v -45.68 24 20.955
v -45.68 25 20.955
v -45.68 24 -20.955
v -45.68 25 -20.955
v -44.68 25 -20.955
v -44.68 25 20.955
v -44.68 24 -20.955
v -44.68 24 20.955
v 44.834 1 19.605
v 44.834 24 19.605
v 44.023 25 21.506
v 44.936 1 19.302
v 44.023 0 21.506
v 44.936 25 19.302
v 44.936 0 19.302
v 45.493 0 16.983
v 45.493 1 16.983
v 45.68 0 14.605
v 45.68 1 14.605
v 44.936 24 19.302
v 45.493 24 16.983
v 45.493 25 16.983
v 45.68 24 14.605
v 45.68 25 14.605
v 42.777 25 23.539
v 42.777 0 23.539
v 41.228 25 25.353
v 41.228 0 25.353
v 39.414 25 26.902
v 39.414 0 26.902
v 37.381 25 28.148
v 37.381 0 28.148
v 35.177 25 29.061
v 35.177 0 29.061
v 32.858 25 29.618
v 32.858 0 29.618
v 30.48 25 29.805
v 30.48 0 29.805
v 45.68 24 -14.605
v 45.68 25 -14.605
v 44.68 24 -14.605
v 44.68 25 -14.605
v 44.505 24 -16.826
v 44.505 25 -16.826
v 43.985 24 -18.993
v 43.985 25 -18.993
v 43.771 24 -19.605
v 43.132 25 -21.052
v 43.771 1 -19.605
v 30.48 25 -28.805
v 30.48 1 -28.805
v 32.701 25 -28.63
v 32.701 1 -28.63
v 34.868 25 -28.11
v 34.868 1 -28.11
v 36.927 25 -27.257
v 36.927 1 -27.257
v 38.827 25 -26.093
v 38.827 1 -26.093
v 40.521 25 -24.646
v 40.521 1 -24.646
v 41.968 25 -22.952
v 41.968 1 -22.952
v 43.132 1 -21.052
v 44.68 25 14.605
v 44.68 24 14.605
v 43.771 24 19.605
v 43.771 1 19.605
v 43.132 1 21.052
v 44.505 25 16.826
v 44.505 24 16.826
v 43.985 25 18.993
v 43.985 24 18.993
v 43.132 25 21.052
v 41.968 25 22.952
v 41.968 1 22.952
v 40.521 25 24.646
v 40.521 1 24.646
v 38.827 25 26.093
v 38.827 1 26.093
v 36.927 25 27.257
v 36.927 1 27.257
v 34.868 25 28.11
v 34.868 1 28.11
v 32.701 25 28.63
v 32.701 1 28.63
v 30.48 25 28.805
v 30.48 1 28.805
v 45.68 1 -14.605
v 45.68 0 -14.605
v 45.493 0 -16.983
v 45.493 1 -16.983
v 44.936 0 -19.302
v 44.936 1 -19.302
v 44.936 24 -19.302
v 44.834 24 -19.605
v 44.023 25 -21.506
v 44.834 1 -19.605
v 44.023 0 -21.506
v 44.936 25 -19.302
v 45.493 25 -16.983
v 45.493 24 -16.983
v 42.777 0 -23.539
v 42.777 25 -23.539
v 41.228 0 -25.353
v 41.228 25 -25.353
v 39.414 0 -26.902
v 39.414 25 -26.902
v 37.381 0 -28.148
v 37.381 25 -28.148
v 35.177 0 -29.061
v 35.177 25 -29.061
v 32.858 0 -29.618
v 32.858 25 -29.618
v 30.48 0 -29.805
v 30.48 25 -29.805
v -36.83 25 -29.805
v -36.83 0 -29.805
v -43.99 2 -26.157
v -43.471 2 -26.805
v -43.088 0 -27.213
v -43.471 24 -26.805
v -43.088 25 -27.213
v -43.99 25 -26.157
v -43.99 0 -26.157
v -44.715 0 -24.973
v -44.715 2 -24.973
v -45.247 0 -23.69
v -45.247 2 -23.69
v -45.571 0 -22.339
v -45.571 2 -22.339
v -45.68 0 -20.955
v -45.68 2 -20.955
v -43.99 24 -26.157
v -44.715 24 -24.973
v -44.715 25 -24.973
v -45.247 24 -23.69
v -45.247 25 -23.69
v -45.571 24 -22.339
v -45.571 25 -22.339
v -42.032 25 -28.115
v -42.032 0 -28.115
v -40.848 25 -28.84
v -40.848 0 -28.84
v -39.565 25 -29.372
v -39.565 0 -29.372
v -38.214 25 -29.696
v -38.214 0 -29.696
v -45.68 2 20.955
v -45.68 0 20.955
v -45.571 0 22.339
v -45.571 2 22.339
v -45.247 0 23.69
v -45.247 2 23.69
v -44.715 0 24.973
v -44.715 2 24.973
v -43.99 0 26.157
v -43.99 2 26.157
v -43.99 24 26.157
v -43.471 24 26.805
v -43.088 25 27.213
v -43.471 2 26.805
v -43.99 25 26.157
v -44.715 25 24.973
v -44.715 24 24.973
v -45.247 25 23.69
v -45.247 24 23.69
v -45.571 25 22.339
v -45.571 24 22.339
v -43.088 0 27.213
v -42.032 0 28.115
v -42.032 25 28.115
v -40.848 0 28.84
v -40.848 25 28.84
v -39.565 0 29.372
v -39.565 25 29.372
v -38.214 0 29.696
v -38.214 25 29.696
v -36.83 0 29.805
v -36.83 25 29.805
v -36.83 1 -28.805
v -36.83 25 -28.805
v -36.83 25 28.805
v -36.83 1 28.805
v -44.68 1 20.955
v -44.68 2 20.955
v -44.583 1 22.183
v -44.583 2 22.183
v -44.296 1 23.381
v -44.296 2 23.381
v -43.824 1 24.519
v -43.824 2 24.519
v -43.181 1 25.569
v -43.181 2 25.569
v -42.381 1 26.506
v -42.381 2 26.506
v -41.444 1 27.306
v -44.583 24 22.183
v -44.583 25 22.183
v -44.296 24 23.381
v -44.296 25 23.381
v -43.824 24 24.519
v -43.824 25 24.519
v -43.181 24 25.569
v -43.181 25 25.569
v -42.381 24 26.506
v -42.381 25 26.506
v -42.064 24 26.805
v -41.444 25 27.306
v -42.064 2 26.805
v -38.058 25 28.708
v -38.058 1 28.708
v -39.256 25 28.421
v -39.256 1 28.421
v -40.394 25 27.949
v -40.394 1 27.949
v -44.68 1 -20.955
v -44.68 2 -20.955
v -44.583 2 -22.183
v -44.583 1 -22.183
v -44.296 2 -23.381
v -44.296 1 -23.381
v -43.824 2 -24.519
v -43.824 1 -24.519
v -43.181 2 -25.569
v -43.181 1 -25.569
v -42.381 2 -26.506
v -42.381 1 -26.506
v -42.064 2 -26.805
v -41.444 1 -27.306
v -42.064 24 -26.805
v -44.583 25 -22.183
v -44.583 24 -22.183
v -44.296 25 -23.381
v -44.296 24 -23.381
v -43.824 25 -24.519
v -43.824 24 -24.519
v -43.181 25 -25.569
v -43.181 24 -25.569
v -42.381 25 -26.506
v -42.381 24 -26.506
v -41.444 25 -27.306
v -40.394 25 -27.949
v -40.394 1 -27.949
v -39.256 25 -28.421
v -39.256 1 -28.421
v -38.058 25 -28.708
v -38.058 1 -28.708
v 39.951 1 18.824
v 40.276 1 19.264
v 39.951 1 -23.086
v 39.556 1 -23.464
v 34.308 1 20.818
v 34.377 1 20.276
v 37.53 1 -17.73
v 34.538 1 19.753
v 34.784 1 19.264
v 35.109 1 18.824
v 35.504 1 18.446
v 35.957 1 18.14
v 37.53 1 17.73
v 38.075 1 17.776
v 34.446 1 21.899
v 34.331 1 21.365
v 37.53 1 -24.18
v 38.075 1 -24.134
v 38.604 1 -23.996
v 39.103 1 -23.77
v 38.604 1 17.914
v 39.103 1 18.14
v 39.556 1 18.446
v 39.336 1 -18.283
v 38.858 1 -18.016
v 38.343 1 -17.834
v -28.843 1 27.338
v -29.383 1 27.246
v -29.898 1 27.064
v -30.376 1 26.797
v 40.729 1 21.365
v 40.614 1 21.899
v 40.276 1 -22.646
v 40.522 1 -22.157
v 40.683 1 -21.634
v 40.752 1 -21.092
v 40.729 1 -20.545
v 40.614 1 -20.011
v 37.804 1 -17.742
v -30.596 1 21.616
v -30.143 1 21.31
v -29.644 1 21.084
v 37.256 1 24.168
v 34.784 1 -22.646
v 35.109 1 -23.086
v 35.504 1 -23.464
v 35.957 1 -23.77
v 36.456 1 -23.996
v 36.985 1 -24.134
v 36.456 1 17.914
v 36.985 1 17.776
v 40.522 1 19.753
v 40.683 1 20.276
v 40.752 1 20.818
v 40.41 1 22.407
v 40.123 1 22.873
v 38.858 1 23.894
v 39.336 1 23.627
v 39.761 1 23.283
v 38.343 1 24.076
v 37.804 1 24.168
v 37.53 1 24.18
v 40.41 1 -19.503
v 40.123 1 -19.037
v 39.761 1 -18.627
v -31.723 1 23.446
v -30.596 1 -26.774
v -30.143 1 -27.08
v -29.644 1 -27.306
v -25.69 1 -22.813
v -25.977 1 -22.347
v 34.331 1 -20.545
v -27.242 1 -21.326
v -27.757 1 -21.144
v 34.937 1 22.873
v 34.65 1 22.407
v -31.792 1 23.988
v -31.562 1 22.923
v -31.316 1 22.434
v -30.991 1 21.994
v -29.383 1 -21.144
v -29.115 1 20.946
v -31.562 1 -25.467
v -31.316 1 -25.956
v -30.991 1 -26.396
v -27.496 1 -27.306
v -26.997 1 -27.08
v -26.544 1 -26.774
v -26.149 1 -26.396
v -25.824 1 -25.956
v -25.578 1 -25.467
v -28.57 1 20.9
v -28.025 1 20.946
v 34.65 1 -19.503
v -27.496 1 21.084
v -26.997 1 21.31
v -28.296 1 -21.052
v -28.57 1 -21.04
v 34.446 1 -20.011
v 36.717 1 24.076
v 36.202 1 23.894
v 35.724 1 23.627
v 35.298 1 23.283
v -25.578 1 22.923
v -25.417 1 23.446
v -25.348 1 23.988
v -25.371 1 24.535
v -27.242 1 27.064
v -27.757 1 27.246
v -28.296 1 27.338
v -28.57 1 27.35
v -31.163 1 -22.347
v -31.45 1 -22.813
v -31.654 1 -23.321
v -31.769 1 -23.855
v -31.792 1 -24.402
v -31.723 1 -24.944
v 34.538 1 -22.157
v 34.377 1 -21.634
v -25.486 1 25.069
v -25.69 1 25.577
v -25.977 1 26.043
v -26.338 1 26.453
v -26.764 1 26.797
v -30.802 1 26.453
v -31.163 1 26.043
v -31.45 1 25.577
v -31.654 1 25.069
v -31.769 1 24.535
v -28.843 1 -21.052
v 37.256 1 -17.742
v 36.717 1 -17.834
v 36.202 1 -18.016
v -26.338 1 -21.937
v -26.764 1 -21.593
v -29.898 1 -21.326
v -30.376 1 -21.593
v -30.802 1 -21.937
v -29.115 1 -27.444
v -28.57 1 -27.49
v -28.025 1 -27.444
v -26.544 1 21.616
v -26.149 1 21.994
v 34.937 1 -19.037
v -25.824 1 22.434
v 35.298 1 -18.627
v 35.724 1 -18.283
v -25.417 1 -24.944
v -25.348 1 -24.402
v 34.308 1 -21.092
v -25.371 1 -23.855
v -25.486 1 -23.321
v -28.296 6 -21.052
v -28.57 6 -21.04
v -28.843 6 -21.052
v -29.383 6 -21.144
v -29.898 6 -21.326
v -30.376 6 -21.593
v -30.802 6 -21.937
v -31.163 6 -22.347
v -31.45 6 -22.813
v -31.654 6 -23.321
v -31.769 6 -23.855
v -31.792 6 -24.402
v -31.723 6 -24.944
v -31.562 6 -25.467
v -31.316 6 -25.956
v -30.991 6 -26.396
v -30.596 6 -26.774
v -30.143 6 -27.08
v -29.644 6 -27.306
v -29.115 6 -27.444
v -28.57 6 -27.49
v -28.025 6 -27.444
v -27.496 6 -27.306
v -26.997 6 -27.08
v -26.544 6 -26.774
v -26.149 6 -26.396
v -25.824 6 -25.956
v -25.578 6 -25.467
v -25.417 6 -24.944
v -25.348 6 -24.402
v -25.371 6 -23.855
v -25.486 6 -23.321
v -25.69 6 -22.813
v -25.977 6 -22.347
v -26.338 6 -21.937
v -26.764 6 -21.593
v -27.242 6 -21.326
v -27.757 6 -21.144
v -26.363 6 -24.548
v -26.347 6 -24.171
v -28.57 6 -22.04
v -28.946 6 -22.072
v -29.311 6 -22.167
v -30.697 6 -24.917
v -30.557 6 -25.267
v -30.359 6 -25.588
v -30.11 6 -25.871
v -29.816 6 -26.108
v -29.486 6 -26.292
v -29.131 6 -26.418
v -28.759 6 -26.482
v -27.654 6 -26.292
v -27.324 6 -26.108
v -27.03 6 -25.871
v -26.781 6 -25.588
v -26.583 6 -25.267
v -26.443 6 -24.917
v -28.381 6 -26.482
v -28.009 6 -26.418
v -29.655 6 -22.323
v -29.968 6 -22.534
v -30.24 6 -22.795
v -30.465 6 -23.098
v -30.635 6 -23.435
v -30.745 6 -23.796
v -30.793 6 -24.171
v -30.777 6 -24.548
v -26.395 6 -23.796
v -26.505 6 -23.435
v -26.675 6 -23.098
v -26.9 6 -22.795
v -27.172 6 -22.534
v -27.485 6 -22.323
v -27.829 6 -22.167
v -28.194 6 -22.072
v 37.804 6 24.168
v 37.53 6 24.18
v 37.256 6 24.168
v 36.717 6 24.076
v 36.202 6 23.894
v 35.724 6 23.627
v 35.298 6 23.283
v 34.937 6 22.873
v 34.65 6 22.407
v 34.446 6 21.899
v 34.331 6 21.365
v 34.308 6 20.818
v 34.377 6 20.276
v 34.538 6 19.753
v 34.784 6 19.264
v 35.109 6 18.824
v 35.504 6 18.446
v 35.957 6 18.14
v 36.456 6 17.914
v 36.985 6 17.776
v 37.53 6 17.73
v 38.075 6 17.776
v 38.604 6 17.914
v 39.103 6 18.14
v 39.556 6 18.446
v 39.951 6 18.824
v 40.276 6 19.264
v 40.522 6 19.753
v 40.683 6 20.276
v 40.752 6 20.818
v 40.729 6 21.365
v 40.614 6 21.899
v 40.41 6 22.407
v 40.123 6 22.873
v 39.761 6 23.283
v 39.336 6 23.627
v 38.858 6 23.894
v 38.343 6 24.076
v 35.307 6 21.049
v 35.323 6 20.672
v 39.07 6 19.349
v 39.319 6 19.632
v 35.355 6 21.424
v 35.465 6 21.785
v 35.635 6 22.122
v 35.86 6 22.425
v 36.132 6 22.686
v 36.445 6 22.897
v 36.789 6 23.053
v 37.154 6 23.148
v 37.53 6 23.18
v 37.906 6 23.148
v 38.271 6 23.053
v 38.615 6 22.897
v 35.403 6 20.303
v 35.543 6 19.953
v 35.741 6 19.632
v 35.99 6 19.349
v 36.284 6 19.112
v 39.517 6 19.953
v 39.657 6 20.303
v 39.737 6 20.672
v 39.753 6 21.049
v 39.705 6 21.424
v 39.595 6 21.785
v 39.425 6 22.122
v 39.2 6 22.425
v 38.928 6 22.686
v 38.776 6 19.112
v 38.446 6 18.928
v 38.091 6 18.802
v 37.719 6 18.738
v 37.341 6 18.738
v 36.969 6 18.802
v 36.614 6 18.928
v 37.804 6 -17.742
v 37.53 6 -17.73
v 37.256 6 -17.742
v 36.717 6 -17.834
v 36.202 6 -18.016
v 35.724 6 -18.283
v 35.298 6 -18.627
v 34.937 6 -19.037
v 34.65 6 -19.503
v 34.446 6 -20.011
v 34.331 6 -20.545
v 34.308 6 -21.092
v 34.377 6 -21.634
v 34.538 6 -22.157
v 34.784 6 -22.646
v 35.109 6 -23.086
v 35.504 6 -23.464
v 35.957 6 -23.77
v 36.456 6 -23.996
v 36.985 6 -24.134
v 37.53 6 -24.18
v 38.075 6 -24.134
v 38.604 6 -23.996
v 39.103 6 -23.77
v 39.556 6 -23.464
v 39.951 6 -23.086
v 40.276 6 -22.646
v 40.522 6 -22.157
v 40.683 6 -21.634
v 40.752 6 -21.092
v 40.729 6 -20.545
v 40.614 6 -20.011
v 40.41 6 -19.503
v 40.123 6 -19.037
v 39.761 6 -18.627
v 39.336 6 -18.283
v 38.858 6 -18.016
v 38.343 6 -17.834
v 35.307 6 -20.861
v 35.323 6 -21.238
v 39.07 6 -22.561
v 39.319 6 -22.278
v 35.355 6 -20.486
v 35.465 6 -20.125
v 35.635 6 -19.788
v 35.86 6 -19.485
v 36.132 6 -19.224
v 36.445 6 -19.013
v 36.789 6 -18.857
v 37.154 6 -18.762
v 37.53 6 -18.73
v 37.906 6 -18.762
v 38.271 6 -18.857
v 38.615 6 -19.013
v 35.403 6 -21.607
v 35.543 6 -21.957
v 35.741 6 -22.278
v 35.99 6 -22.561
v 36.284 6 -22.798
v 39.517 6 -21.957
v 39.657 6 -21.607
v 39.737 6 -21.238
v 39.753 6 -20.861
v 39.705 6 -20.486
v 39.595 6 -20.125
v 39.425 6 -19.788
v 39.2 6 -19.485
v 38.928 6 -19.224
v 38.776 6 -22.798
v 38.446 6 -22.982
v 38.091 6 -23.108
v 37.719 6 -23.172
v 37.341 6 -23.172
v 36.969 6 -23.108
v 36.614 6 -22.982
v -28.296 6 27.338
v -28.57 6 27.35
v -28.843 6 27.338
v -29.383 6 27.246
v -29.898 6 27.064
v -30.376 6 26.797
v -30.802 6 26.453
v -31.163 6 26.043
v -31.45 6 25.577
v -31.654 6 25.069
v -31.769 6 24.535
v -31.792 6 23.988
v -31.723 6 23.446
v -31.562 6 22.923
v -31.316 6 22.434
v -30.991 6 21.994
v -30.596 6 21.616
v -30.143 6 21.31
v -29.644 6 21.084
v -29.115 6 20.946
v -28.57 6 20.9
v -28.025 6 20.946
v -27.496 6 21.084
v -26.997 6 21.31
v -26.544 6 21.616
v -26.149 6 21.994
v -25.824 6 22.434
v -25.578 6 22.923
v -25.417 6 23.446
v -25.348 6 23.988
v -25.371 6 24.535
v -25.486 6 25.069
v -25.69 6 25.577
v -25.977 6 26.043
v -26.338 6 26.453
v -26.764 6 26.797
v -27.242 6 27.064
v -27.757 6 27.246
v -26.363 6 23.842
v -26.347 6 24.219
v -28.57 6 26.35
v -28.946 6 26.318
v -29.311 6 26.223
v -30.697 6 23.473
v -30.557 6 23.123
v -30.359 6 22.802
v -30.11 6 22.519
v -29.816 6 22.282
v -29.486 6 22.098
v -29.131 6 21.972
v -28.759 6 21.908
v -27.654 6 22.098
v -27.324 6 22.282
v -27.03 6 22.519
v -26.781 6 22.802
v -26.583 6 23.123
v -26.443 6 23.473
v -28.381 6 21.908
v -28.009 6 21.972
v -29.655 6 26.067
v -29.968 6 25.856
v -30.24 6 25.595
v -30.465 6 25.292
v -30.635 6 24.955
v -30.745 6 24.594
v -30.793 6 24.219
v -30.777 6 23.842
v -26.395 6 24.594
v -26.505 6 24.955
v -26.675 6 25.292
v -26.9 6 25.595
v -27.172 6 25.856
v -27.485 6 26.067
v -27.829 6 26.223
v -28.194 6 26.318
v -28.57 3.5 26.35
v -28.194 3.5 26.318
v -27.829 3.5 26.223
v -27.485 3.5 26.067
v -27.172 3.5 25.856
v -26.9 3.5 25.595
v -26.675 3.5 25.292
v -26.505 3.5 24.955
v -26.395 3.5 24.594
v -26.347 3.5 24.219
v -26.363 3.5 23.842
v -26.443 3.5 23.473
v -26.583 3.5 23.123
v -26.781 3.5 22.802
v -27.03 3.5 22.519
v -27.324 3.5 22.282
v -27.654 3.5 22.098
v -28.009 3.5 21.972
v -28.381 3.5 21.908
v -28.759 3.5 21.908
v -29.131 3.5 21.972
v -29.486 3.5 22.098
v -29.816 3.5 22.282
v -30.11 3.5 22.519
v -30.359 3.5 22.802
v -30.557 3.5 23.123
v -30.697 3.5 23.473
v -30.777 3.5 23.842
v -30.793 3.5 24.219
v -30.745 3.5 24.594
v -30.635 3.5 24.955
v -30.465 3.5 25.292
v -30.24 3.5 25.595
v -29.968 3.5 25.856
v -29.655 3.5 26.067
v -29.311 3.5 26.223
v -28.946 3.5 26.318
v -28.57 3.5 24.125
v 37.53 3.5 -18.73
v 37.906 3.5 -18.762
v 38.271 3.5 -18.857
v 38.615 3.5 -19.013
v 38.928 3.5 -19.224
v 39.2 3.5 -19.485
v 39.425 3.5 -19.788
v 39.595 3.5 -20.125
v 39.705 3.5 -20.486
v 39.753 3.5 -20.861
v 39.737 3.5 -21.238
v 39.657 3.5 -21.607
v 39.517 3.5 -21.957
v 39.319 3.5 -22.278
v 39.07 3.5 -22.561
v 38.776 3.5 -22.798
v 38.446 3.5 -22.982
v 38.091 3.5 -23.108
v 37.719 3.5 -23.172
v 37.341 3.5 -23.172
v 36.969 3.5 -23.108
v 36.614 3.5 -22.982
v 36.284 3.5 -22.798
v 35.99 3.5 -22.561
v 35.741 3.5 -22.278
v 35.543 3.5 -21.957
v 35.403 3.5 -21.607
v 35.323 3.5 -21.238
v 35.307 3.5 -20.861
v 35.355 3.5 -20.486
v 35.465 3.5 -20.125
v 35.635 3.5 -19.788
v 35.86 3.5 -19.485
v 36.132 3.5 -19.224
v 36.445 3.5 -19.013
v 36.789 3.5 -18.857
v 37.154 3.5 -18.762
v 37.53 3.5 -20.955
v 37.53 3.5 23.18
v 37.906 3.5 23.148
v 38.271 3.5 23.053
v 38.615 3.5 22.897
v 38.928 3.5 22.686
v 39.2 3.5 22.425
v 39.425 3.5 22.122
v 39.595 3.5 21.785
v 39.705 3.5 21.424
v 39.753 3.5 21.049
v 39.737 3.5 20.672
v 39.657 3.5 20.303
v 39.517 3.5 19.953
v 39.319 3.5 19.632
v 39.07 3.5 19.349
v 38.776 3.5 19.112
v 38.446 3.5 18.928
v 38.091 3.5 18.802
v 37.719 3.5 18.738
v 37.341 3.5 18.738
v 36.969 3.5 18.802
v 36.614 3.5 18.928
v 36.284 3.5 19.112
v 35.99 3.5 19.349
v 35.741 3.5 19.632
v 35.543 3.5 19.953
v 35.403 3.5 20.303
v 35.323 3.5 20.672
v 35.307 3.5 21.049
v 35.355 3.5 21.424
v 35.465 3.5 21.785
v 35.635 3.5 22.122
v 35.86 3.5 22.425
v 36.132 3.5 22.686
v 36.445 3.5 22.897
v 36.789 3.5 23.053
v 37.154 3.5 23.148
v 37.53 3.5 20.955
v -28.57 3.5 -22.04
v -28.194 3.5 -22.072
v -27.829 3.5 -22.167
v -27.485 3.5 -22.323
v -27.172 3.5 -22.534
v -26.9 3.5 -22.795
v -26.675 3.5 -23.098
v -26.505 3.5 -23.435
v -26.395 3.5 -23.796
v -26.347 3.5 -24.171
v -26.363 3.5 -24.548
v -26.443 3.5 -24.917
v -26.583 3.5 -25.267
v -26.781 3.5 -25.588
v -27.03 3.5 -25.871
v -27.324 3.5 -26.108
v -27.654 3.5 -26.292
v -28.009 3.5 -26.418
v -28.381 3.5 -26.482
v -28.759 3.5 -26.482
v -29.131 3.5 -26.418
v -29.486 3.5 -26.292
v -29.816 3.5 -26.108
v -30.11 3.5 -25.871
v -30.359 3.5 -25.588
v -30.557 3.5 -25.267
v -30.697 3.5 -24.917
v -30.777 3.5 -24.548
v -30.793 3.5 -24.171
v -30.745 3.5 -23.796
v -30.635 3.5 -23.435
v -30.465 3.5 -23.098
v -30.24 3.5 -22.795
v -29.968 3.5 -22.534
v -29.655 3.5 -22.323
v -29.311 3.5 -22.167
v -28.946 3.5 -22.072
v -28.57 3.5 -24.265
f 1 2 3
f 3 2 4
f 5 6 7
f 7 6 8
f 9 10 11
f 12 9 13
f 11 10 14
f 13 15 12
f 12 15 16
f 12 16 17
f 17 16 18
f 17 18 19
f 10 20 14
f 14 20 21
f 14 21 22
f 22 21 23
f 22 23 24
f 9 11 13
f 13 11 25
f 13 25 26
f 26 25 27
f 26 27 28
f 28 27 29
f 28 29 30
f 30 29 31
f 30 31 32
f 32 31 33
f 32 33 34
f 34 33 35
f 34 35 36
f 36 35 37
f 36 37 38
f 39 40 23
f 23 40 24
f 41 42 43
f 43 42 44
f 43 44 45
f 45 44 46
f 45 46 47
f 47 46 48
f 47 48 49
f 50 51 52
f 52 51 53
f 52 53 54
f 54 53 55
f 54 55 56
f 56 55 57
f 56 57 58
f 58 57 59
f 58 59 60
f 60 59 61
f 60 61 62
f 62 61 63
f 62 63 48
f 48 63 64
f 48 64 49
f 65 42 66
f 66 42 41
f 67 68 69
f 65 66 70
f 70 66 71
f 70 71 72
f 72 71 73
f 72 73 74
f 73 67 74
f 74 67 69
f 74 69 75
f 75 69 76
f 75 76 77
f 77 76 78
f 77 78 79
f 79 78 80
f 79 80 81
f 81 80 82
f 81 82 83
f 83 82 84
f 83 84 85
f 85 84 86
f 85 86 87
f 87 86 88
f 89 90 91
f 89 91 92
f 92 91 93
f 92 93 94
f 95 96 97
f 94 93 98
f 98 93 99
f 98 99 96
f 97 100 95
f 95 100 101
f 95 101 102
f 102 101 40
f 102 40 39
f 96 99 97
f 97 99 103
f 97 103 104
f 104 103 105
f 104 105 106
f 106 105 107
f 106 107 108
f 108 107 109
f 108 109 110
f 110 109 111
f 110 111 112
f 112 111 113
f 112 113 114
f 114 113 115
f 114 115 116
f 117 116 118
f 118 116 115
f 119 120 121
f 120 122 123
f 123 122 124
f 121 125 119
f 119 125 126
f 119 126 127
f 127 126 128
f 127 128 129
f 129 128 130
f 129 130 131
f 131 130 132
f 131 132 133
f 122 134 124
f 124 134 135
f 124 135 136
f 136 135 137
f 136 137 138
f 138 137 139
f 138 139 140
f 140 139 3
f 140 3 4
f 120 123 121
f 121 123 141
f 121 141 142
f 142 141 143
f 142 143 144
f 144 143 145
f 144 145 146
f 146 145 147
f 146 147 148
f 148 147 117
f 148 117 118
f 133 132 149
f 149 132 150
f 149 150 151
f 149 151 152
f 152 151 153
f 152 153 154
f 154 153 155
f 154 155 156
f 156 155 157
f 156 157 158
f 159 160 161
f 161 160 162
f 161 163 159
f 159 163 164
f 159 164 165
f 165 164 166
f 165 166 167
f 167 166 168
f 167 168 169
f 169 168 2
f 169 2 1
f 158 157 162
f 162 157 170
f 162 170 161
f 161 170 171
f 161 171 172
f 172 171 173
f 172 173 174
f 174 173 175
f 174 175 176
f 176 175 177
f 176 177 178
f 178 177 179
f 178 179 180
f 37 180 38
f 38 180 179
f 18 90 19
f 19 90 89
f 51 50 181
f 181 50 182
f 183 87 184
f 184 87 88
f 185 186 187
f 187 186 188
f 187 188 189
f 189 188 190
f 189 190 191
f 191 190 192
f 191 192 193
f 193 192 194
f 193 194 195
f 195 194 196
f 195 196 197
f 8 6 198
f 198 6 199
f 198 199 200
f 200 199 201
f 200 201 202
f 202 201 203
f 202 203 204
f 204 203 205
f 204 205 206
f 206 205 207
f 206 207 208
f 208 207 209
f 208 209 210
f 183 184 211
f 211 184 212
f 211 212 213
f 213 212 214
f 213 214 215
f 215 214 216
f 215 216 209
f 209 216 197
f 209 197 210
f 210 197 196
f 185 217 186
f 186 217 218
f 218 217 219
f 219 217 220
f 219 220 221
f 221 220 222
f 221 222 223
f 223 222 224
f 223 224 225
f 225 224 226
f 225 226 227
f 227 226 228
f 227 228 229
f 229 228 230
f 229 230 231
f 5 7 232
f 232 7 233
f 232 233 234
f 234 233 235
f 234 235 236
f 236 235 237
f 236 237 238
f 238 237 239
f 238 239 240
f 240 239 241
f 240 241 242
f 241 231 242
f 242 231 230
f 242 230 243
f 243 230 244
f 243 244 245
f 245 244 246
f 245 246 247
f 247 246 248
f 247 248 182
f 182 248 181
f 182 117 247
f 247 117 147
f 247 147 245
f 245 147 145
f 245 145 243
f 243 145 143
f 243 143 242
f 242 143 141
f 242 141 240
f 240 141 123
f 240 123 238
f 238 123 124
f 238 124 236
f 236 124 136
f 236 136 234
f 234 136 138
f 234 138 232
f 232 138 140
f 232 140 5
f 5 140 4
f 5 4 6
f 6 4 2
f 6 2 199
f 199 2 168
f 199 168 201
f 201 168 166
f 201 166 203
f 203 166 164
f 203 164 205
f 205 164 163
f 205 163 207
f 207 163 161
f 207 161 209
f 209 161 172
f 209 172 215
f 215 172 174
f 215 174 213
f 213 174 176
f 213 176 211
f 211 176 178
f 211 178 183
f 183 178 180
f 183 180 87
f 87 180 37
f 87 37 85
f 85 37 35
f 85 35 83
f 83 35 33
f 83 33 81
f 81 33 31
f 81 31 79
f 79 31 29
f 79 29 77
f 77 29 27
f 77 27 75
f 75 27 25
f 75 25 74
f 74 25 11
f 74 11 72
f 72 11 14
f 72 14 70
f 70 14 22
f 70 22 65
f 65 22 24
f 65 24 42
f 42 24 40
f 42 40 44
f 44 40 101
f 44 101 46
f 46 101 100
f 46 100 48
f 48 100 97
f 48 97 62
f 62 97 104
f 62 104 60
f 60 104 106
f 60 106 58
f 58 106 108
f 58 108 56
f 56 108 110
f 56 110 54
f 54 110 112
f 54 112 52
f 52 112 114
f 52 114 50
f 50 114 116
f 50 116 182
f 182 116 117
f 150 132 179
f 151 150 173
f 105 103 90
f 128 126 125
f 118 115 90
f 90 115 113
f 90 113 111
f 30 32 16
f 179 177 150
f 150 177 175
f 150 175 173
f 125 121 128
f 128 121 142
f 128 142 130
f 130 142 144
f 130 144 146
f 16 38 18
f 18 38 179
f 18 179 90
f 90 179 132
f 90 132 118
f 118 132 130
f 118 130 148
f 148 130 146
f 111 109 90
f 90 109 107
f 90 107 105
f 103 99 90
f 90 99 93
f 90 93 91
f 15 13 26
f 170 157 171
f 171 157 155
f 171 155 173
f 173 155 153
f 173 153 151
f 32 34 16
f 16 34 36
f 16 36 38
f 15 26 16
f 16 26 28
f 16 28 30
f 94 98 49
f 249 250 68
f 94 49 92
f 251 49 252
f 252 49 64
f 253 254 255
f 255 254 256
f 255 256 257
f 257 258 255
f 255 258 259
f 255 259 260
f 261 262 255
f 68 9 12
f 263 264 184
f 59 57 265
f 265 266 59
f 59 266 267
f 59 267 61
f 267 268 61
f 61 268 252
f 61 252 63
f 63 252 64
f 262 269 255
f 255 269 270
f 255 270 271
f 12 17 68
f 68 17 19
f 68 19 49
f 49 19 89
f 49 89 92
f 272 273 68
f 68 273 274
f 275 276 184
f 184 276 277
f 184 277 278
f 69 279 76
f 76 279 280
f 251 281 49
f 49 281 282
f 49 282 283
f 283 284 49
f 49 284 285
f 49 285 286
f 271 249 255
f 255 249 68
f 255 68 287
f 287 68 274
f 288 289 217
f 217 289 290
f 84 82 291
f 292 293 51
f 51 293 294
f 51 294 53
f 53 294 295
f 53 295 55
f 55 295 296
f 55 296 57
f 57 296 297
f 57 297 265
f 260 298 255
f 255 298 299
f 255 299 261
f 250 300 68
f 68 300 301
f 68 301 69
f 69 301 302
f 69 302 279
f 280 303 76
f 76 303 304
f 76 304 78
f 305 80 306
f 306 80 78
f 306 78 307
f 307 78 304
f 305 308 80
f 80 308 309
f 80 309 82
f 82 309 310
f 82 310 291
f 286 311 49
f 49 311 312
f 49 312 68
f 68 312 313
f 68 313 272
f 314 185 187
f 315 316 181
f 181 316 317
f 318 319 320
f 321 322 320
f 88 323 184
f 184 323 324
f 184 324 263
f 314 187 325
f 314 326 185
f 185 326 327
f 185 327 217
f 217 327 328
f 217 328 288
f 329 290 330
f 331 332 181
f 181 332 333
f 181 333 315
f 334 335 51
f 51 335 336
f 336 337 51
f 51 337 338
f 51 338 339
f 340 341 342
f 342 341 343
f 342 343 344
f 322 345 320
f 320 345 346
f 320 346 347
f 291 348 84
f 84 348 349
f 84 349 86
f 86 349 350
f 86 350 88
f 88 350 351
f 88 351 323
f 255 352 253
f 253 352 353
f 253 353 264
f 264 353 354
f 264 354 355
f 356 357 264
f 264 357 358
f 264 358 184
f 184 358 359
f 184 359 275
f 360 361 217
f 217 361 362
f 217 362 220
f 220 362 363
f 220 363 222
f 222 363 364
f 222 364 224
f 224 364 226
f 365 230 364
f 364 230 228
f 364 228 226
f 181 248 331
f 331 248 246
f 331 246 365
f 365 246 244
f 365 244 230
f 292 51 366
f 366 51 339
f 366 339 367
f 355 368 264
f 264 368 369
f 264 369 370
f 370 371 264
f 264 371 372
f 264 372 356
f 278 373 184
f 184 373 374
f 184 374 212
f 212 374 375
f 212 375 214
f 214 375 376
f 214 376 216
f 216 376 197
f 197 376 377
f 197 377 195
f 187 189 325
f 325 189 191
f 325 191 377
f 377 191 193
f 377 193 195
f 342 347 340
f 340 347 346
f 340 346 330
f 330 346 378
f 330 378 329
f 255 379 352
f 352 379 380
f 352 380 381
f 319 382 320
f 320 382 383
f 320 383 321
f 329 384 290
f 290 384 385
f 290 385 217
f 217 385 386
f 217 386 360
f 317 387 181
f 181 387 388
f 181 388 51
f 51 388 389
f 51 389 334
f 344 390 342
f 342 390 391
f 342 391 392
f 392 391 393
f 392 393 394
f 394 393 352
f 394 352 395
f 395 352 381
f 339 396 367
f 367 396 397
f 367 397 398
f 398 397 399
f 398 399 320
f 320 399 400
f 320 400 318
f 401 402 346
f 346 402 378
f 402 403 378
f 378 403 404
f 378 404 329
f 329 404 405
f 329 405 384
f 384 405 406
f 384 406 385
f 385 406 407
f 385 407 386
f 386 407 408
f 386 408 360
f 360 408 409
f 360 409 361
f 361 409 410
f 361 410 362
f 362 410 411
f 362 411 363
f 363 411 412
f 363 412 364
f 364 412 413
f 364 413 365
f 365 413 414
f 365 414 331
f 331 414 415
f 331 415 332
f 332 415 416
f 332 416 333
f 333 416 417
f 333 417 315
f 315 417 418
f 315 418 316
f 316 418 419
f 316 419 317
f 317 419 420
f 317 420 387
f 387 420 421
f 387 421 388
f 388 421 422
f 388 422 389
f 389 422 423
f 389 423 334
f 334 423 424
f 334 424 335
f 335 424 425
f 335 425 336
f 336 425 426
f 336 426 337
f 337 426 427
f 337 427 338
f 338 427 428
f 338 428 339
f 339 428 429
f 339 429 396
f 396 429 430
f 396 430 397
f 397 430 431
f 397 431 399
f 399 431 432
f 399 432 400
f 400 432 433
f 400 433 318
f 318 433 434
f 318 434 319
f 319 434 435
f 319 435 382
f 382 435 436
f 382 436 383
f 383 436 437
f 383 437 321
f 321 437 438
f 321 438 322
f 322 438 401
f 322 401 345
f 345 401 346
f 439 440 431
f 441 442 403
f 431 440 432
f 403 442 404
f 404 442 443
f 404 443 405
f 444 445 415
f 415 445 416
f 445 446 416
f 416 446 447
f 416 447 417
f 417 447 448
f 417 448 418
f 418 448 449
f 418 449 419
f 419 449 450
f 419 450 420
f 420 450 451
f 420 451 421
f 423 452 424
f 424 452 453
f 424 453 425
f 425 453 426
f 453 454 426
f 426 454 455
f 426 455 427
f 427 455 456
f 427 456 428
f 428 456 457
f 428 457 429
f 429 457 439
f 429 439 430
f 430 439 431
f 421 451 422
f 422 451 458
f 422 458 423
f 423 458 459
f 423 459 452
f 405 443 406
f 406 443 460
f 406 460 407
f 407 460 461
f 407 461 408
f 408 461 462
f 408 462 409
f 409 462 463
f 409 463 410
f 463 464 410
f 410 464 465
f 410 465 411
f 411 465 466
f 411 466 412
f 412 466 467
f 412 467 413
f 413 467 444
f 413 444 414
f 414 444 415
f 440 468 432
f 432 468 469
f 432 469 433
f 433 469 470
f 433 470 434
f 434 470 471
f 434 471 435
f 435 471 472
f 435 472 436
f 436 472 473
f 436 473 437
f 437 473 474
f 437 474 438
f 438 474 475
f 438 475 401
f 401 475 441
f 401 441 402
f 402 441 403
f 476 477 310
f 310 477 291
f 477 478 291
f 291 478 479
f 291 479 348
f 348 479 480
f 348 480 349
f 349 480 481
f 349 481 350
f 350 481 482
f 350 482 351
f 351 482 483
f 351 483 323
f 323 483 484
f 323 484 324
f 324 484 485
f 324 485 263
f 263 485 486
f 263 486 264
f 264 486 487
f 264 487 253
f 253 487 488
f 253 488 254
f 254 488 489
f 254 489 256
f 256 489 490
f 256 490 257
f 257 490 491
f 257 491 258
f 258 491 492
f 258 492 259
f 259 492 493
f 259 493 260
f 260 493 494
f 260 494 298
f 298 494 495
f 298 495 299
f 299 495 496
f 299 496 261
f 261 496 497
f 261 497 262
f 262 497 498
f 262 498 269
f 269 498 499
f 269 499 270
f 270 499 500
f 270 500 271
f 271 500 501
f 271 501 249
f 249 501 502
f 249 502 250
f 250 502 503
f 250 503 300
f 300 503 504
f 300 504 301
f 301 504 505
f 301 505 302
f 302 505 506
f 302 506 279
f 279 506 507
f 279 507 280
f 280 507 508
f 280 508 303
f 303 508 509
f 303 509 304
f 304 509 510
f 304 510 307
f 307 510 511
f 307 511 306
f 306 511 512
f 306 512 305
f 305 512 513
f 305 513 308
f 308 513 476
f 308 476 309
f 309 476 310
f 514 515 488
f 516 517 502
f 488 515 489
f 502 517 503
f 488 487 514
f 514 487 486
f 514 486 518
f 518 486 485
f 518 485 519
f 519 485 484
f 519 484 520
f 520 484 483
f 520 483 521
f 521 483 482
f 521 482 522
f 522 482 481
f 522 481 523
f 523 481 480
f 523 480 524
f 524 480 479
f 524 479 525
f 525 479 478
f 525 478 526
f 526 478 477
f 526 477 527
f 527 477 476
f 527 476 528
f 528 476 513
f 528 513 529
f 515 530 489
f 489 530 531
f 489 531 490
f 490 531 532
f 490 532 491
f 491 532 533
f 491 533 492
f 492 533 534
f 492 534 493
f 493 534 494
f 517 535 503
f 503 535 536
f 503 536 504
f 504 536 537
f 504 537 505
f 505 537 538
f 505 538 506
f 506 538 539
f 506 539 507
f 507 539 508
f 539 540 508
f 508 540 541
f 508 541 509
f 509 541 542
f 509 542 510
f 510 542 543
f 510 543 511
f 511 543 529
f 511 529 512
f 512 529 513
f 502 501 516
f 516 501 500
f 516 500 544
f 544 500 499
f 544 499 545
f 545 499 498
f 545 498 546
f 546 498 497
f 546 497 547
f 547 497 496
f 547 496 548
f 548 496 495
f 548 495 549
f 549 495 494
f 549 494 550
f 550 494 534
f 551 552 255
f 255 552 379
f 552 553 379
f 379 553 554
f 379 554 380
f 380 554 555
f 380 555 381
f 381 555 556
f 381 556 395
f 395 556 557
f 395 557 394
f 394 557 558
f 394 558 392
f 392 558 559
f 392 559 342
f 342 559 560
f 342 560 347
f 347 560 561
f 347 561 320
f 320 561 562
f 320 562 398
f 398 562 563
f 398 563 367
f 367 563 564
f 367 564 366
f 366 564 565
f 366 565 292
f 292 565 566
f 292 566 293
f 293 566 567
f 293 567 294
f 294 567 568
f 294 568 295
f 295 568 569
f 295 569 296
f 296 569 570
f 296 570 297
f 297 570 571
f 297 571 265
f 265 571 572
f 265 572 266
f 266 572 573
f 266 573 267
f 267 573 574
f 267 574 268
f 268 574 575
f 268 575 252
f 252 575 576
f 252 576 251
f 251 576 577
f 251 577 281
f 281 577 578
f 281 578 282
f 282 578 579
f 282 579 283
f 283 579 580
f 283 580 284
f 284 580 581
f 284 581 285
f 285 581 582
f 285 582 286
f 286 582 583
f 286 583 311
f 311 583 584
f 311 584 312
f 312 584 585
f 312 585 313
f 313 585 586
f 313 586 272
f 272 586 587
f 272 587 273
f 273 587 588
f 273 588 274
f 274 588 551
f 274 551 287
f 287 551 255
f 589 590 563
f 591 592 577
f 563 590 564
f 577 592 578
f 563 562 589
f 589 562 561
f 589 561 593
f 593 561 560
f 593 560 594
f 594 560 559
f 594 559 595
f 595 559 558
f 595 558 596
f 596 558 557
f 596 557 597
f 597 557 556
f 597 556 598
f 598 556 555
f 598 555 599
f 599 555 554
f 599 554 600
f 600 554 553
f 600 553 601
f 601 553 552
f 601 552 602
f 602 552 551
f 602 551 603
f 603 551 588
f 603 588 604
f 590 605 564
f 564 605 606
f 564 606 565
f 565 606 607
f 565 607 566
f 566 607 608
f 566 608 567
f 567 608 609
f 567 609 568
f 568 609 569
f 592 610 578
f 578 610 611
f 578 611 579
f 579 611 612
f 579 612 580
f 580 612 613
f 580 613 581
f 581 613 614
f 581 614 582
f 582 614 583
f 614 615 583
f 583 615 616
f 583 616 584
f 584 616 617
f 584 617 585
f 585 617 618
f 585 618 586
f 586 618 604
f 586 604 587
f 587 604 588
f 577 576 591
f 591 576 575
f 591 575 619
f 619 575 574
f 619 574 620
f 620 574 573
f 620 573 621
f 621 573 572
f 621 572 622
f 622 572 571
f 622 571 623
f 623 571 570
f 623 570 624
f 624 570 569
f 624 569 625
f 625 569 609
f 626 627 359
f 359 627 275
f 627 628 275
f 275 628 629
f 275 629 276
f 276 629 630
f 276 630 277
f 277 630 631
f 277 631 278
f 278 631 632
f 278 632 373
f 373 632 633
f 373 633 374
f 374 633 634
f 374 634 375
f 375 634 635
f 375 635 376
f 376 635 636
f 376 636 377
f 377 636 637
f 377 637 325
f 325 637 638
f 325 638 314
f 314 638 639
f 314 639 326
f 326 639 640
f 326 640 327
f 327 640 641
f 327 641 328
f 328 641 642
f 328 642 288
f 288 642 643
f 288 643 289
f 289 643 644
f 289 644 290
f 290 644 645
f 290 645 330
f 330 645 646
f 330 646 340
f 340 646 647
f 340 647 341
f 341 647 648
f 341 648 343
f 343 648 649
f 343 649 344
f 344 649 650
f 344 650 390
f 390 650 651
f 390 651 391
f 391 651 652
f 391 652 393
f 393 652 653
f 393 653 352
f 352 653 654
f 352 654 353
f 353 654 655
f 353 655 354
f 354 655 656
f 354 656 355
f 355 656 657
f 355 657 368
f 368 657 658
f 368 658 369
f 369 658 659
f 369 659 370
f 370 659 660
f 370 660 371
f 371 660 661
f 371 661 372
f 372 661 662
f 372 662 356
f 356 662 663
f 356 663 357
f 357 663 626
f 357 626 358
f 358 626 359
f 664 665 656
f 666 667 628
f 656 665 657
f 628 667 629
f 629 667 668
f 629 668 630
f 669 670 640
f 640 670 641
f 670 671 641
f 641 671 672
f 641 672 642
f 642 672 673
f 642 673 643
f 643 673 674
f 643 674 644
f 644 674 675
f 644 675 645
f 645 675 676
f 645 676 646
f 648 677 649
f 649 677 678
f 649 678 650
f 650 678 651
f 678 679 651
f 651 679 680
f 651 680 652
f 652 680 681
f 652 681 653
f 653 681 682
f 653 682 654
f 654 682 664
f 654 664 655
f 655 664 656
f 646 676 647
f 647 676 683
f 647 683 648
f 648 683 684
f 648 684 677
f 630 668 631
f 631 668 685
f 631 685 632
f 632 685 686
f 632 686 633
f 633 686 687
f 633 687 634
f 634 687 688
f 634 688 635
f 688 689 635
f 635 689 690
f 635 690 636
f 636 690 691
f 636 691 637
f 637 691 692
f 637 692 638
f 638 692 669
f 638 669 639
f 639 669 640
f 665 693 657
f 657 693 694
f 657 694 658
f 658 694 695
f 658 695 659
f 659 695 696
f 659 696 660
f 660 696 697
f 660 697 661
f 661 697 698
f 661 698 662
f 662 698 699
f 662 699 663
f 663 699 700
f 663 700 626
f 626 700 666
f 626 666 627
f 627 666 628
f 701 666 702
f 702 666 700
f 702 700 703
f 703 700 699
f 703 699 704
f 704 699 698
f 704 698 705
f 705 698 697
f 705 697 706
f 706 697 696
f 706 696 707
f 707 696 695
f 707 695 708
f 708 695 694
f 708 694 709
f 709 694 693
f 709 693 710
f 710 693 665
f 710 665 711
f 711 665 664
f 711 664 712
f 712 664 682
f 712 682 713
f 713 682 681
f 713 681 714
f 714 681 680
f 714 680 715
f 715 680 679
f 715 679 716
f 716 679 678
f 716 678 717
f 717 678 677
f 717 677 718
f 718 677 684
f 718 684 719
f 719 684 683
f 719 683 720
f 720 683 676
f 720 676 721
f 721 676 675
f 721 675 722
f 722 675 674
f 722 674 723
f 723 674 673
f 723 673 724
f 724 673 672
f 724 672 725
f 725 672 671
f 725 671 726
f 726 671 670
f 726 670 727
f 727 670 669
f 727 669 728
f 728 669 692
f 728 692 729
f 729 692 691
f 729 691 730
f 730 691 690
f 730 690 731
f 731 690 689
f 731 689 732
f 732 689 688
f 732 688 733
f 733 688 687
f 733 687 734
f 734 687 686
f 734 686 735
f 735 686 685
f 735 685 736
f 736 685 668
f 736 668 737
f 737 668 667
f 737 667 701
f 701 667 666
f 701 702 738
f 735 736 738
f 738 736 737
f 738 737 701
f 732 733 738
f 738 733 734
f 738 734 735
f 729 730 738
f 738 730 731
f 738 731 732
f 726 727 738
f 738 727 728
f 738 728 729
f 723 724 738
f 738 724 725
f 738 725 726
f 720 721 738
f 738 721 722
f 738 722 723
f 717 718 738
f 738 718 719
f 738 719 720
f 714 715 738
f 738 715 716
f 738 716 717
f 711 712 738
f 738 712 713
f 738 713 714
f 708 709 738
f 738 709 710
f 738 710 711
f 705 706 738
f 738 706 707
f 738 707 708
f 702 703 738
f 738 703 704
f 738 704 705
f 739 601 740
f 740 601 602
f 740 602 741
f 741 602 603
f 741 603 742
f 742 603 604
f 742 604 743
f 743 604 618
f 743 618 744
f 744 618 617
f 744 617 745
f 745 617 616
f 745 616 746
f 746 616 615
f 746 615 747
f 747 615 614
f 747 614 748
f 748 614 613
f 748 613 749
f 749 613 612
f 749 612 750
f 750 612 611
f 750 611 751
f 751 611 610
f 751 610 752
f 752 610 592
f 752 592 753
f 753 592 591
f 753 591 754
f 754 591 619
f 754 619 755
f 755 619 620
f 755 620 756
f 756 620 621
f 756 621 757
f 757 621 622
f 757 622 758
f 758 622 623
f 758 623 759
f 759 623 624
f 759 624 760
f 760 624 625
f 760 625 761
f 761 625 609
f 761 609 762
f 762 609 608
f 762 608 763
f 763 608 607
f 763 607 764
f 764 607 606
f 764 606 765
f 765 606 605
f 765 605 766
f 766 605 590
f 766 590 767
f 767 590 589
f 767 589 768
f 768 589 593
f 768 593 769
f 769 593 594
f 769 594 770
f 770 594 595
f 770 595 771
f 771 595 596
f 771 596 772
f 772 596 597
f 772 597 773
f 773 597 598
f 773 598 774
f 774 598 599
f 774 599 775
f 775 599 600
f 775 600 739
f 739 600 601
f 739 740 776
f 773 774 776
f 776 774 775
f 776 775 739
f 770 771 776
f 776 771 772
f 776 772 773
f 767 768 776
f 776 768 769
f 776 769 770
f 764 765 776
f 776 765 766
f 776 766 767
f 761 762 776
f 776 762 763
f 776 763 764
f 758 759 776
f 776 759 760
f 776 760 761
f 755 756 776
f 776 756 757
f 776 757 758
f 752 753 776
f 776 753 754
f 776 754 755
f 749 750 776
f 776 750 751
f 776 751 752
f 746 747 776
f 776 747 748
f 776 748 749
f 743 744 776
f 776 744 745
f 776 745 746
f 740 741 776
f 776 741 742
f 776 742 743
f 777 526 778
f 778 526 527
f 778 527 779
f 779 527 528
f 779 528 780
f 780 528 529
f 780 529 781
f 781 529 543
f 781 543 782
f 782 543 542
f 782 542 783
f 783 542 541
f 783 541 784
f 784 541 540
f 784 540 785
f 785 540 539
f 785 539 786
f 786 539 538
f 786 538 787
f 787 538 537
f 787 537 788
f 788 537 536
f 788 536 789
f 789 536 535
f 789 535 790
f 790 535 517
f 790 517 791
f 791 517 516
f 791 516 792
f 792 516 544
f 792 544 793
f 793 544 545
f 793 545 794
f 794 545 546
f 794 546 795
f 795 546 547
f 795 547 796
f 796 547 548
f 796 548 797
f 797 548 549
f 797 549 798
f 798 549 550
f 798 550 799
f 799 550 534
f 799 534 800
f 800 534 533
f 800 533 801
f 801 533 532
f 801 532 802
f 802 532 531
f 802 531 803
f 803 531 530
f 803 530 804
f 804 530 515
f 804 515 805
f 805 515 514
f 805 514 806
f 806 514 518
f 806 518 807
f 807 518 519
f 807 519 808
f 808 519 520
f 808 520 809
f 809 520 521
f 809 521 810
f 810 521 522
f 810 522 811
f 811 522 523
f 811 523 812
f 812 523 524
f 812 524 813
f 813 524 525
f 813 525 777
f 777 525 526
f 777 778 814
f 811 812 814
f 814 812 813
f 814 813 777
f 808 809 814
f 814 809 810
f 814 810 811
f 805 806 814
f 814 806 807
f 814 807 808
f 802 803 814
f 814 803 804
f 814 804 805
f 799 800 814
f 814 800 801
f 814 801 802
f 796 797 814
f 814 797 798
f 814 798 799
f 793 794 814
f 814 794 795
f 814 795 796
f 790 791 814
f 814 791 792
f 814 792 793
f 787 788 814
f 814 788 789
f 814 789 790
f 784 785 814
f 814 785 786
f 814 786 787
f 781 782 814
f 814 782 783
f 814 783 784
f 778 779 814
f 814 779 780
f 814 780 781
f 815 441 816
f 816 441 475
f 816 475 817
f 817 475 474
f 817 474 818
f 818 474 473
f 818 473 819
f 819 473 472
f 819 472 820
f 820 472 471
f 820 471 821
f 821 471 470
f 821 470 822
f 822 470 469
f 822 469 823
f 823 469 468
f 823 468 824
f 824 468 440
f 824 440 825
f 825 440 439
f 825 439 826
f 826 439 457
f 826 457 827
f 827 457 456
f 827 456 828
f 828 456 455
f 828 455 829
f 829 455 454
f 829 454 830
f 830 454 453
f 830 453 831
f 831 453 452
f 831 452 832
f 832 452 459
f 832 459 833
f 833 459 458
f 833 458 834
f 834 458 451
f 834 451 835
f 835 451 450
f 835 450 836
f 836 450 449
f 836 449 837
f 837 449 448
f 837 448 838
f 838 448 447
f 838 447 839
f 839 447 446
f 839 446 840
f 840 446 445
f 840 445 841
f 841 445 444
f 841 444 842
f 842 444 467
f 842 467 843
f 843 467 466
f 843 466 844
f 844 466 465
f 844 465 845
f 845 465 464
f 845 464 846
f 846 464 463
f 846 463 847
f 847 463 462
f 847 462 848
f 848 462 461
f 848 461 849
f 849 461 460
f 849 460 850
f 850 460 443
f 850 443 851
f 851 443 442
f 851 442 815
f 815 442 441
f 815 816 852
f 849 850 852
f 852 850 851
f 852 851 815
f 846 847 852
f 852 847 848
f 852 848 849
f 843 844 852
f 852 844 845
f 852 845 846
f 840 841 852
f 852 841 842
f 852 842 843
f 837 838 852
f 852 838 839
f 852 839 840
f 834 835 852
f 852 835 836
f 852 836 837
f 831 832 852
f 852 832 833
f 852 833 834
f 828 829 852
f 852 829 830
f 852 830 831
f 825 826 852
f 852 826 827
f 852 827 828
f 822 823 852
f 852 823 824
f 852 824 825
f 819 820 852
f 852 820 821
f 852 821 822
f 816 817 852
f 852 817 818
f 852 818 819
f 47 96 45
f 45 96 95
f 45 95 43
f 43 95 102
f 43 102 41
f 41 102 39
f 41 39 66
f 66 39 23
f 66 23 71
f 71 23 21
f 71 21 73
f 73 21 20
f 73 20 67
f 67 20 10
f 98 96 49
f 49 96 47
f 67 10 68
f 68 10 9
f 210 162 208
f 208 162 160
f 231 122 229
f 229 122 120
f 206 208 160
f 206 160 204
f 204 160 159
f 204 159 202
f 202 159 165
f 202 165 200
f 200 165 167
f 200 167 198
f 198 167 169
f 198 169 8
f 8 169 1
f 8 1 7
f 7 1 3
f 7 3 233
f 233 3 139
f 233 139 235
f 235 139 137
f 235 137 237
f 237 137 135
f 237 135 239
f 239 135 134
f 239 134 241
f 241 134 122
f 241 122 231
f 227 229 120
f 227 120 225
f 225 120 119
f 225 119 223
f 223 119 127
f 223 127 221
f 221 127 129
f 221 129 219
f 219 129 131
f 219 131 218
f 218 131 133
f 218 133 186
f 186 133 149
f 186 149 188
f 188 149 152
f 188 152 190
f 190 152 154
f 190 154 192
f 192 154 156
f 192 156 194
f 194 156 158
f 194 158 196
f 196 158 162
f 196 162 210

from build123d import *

# Parameters (mm, degrees)
BOSS_EXTRUDE1_DEPTH = 25
BOSS_EXTRUDE2_DEPTH = 1
SKETCH1_4_R         = 3.225
BOSS_EXTRUDE3_DEPTH = 6
SKETCH2_R           = 2.225
CUT_EXTRUDE1_DEPTH  = 2.5
SKETCH3_W           = 39.21
SKETCH3_H           = 23
CUT_EXTRUDE2_DEPTH  = 4
SKETCH4_W           = 53.61
SKETCH4_H           = 22
CUT_EXTRUDE3_DEPTH  = 7


with BuildPart() as part:
    # Sketch1 → Boss-Extrude1 (new body)
    with BuildSketch(Plane(origin=(0, 0, 0), x_dir=(1, 0, 0), z_dir=(0, 1, 0))):
        with BuildLine():
            Line((30.48, 29.805), (-36.83, 29.805))
            ThreePointArc((-36.83, 29.805), (-43.087895014, 27.212895014), (-45.68, 20.955))
            Line((-45.68, 20.955), (-45.68, -20.955))
            ThreePointArc((-45.68, -20.955), (-43.087895014, -27.212895014), (-36.83, -29.805))
            Line((-36.83, -29.805), (30.48, -29.805))
            ThreePointArc((30.48, -29.805), (41.228023074, -25.353023074), (45.68, -14.605))
            Line((45.68, -14.605), (45.68, 14.605))
            ThreePointArc((45.68, 14.605), (41.228023074, 25.353023074), (30.48, 29.805))
        make_face()
        with BuildLine():
            Line((-44.68, -20.955), (-44.68, 20.955))
            ThreePointArc((-44.68, 20.955), (-42.380788232, 26.505788232), (-36.83, 28.805))
            Line((-36.83, 28.805), (30.48, 28.805))
            ThreePointArc((30.48, 28.805), (40.520916293, 24.645916293), (44.68, 14.605))
            Line((44.68, 14.605), (44.68, -14.605))
            ThreePointArc((44.68, -14.605), (40.520916293, -24.645916293), (30.48, -28.805))
            Line((30.48, -28.805), (-36.83, -28.805))
            ThreePointArc((-36.83, -28.805), (-42.380788232, -26.505788232), (-44.68, -20.955))
        make_face(mode=Mode.SUBTRACT)
    extrude(amount=BOSS_EXTRUDE1_DEPTH)

    # Sketch1<3> → Boss-Extrude2 (add)
    with BuildSketch(Plane(origin=(0, 0, 0), x_dir=(1, 0, 0), z_dir=(0, 1, 0))):
        with BuildLine():
            ThreePointArc((-36.83, 28.805), (-42.380788232, 26.505788232), (-44.68, 20.955))
            Line((-44.68, 20.955), (-44.68, -20.955))
            ThreePointArc((-44.68, -20.955), (-42.380788232, -26.505788232), (-36.83, -28.805))
            Line((-36.83, -28.805), (30.48, -28.805))
            ThreePointArc((30.48, -28.805), (40.520916293, -24.645916293), (44.68, -14.605))
            Line((44.68, -14.605), (44.68, 14.605))
            ThreePointArc((44.68, 14.605), (40.520916293, 24.645916293), (30.48, 28.805))
            Line((30.48, 28.805), (-36.83, 28.805))
        make_face()
    extrude(amount=BOSS_EXTRUDE2_DEPTH)

    # Sketch1<4> → Boss-Extrude3 (add)
    with BuildSketch(Plane(origin=(0, 0, 0), x_dir=(1, 0, 0), z_dir=(0, 1, 0))):
        with Locations((-28.57, 24.265)):
            Circle(SKETCH1_4_R)
        with Locations((37.53, 20.955)):
            Circle(SKETCH1_4_R)
        with Locations((37.53, -20.955)):
            Circle(SKETCH1_4_R)
        with Locations((-28.57, -24.125)):
            Circle(SKETCH1_4_R)
    extrude(amount=BOSS_EXTRUDE3_DEPTH)

    # Sketch2 → Cut-Extrude1 (cut)
    with BuildSketch(Plane(origin=(0, 6, 0), x_dir=(1, 0, 0), z_dir=(0, 1, 0))):
        with Locations((-28.57, 24.265)):
            Circle(SKETCH2_R)
        with Locations((-28.57, -24.125)):
            Circle(SKETCH2_R)
        with Locations((37.53, -20.955)):
            Circle(SKETCH2_R)
        with Locations((37.53, 20.955)):
            Circle(SKETCH2_R)
    extrude(amount=-CUT_EXTRUDE1_DEPTH, mode=Mode.SUBTRACT)

    # Sketch3 → Cut-Extrude2 (cut)
    with BuildSketch(Plane(origin=(45.68, 0, 0), x_dir=(0, 0, -1), z_dir=(1, 0, 0))):
        with Locations((0, 12.5)):
            Rectangle(SKETCH3_W, SKETCH3_H)
    extrude(amount=-CUT_EXTRUDE2_DEPTH, mode=Mode.SUBTRACT)

    # Sketch4 → Cut-Extrude3 (cut)
    with BuildSketch(Plane.ZY.offset(45.68)):
        with Locations((0, 13)):
            Rectangle(SKETCH4_W, SKETCH4_H)
    extrude(amount=-CUT_EXTRUDE3_DEPTH, mode=Mode.SUBTRACT)


solid = part.part
